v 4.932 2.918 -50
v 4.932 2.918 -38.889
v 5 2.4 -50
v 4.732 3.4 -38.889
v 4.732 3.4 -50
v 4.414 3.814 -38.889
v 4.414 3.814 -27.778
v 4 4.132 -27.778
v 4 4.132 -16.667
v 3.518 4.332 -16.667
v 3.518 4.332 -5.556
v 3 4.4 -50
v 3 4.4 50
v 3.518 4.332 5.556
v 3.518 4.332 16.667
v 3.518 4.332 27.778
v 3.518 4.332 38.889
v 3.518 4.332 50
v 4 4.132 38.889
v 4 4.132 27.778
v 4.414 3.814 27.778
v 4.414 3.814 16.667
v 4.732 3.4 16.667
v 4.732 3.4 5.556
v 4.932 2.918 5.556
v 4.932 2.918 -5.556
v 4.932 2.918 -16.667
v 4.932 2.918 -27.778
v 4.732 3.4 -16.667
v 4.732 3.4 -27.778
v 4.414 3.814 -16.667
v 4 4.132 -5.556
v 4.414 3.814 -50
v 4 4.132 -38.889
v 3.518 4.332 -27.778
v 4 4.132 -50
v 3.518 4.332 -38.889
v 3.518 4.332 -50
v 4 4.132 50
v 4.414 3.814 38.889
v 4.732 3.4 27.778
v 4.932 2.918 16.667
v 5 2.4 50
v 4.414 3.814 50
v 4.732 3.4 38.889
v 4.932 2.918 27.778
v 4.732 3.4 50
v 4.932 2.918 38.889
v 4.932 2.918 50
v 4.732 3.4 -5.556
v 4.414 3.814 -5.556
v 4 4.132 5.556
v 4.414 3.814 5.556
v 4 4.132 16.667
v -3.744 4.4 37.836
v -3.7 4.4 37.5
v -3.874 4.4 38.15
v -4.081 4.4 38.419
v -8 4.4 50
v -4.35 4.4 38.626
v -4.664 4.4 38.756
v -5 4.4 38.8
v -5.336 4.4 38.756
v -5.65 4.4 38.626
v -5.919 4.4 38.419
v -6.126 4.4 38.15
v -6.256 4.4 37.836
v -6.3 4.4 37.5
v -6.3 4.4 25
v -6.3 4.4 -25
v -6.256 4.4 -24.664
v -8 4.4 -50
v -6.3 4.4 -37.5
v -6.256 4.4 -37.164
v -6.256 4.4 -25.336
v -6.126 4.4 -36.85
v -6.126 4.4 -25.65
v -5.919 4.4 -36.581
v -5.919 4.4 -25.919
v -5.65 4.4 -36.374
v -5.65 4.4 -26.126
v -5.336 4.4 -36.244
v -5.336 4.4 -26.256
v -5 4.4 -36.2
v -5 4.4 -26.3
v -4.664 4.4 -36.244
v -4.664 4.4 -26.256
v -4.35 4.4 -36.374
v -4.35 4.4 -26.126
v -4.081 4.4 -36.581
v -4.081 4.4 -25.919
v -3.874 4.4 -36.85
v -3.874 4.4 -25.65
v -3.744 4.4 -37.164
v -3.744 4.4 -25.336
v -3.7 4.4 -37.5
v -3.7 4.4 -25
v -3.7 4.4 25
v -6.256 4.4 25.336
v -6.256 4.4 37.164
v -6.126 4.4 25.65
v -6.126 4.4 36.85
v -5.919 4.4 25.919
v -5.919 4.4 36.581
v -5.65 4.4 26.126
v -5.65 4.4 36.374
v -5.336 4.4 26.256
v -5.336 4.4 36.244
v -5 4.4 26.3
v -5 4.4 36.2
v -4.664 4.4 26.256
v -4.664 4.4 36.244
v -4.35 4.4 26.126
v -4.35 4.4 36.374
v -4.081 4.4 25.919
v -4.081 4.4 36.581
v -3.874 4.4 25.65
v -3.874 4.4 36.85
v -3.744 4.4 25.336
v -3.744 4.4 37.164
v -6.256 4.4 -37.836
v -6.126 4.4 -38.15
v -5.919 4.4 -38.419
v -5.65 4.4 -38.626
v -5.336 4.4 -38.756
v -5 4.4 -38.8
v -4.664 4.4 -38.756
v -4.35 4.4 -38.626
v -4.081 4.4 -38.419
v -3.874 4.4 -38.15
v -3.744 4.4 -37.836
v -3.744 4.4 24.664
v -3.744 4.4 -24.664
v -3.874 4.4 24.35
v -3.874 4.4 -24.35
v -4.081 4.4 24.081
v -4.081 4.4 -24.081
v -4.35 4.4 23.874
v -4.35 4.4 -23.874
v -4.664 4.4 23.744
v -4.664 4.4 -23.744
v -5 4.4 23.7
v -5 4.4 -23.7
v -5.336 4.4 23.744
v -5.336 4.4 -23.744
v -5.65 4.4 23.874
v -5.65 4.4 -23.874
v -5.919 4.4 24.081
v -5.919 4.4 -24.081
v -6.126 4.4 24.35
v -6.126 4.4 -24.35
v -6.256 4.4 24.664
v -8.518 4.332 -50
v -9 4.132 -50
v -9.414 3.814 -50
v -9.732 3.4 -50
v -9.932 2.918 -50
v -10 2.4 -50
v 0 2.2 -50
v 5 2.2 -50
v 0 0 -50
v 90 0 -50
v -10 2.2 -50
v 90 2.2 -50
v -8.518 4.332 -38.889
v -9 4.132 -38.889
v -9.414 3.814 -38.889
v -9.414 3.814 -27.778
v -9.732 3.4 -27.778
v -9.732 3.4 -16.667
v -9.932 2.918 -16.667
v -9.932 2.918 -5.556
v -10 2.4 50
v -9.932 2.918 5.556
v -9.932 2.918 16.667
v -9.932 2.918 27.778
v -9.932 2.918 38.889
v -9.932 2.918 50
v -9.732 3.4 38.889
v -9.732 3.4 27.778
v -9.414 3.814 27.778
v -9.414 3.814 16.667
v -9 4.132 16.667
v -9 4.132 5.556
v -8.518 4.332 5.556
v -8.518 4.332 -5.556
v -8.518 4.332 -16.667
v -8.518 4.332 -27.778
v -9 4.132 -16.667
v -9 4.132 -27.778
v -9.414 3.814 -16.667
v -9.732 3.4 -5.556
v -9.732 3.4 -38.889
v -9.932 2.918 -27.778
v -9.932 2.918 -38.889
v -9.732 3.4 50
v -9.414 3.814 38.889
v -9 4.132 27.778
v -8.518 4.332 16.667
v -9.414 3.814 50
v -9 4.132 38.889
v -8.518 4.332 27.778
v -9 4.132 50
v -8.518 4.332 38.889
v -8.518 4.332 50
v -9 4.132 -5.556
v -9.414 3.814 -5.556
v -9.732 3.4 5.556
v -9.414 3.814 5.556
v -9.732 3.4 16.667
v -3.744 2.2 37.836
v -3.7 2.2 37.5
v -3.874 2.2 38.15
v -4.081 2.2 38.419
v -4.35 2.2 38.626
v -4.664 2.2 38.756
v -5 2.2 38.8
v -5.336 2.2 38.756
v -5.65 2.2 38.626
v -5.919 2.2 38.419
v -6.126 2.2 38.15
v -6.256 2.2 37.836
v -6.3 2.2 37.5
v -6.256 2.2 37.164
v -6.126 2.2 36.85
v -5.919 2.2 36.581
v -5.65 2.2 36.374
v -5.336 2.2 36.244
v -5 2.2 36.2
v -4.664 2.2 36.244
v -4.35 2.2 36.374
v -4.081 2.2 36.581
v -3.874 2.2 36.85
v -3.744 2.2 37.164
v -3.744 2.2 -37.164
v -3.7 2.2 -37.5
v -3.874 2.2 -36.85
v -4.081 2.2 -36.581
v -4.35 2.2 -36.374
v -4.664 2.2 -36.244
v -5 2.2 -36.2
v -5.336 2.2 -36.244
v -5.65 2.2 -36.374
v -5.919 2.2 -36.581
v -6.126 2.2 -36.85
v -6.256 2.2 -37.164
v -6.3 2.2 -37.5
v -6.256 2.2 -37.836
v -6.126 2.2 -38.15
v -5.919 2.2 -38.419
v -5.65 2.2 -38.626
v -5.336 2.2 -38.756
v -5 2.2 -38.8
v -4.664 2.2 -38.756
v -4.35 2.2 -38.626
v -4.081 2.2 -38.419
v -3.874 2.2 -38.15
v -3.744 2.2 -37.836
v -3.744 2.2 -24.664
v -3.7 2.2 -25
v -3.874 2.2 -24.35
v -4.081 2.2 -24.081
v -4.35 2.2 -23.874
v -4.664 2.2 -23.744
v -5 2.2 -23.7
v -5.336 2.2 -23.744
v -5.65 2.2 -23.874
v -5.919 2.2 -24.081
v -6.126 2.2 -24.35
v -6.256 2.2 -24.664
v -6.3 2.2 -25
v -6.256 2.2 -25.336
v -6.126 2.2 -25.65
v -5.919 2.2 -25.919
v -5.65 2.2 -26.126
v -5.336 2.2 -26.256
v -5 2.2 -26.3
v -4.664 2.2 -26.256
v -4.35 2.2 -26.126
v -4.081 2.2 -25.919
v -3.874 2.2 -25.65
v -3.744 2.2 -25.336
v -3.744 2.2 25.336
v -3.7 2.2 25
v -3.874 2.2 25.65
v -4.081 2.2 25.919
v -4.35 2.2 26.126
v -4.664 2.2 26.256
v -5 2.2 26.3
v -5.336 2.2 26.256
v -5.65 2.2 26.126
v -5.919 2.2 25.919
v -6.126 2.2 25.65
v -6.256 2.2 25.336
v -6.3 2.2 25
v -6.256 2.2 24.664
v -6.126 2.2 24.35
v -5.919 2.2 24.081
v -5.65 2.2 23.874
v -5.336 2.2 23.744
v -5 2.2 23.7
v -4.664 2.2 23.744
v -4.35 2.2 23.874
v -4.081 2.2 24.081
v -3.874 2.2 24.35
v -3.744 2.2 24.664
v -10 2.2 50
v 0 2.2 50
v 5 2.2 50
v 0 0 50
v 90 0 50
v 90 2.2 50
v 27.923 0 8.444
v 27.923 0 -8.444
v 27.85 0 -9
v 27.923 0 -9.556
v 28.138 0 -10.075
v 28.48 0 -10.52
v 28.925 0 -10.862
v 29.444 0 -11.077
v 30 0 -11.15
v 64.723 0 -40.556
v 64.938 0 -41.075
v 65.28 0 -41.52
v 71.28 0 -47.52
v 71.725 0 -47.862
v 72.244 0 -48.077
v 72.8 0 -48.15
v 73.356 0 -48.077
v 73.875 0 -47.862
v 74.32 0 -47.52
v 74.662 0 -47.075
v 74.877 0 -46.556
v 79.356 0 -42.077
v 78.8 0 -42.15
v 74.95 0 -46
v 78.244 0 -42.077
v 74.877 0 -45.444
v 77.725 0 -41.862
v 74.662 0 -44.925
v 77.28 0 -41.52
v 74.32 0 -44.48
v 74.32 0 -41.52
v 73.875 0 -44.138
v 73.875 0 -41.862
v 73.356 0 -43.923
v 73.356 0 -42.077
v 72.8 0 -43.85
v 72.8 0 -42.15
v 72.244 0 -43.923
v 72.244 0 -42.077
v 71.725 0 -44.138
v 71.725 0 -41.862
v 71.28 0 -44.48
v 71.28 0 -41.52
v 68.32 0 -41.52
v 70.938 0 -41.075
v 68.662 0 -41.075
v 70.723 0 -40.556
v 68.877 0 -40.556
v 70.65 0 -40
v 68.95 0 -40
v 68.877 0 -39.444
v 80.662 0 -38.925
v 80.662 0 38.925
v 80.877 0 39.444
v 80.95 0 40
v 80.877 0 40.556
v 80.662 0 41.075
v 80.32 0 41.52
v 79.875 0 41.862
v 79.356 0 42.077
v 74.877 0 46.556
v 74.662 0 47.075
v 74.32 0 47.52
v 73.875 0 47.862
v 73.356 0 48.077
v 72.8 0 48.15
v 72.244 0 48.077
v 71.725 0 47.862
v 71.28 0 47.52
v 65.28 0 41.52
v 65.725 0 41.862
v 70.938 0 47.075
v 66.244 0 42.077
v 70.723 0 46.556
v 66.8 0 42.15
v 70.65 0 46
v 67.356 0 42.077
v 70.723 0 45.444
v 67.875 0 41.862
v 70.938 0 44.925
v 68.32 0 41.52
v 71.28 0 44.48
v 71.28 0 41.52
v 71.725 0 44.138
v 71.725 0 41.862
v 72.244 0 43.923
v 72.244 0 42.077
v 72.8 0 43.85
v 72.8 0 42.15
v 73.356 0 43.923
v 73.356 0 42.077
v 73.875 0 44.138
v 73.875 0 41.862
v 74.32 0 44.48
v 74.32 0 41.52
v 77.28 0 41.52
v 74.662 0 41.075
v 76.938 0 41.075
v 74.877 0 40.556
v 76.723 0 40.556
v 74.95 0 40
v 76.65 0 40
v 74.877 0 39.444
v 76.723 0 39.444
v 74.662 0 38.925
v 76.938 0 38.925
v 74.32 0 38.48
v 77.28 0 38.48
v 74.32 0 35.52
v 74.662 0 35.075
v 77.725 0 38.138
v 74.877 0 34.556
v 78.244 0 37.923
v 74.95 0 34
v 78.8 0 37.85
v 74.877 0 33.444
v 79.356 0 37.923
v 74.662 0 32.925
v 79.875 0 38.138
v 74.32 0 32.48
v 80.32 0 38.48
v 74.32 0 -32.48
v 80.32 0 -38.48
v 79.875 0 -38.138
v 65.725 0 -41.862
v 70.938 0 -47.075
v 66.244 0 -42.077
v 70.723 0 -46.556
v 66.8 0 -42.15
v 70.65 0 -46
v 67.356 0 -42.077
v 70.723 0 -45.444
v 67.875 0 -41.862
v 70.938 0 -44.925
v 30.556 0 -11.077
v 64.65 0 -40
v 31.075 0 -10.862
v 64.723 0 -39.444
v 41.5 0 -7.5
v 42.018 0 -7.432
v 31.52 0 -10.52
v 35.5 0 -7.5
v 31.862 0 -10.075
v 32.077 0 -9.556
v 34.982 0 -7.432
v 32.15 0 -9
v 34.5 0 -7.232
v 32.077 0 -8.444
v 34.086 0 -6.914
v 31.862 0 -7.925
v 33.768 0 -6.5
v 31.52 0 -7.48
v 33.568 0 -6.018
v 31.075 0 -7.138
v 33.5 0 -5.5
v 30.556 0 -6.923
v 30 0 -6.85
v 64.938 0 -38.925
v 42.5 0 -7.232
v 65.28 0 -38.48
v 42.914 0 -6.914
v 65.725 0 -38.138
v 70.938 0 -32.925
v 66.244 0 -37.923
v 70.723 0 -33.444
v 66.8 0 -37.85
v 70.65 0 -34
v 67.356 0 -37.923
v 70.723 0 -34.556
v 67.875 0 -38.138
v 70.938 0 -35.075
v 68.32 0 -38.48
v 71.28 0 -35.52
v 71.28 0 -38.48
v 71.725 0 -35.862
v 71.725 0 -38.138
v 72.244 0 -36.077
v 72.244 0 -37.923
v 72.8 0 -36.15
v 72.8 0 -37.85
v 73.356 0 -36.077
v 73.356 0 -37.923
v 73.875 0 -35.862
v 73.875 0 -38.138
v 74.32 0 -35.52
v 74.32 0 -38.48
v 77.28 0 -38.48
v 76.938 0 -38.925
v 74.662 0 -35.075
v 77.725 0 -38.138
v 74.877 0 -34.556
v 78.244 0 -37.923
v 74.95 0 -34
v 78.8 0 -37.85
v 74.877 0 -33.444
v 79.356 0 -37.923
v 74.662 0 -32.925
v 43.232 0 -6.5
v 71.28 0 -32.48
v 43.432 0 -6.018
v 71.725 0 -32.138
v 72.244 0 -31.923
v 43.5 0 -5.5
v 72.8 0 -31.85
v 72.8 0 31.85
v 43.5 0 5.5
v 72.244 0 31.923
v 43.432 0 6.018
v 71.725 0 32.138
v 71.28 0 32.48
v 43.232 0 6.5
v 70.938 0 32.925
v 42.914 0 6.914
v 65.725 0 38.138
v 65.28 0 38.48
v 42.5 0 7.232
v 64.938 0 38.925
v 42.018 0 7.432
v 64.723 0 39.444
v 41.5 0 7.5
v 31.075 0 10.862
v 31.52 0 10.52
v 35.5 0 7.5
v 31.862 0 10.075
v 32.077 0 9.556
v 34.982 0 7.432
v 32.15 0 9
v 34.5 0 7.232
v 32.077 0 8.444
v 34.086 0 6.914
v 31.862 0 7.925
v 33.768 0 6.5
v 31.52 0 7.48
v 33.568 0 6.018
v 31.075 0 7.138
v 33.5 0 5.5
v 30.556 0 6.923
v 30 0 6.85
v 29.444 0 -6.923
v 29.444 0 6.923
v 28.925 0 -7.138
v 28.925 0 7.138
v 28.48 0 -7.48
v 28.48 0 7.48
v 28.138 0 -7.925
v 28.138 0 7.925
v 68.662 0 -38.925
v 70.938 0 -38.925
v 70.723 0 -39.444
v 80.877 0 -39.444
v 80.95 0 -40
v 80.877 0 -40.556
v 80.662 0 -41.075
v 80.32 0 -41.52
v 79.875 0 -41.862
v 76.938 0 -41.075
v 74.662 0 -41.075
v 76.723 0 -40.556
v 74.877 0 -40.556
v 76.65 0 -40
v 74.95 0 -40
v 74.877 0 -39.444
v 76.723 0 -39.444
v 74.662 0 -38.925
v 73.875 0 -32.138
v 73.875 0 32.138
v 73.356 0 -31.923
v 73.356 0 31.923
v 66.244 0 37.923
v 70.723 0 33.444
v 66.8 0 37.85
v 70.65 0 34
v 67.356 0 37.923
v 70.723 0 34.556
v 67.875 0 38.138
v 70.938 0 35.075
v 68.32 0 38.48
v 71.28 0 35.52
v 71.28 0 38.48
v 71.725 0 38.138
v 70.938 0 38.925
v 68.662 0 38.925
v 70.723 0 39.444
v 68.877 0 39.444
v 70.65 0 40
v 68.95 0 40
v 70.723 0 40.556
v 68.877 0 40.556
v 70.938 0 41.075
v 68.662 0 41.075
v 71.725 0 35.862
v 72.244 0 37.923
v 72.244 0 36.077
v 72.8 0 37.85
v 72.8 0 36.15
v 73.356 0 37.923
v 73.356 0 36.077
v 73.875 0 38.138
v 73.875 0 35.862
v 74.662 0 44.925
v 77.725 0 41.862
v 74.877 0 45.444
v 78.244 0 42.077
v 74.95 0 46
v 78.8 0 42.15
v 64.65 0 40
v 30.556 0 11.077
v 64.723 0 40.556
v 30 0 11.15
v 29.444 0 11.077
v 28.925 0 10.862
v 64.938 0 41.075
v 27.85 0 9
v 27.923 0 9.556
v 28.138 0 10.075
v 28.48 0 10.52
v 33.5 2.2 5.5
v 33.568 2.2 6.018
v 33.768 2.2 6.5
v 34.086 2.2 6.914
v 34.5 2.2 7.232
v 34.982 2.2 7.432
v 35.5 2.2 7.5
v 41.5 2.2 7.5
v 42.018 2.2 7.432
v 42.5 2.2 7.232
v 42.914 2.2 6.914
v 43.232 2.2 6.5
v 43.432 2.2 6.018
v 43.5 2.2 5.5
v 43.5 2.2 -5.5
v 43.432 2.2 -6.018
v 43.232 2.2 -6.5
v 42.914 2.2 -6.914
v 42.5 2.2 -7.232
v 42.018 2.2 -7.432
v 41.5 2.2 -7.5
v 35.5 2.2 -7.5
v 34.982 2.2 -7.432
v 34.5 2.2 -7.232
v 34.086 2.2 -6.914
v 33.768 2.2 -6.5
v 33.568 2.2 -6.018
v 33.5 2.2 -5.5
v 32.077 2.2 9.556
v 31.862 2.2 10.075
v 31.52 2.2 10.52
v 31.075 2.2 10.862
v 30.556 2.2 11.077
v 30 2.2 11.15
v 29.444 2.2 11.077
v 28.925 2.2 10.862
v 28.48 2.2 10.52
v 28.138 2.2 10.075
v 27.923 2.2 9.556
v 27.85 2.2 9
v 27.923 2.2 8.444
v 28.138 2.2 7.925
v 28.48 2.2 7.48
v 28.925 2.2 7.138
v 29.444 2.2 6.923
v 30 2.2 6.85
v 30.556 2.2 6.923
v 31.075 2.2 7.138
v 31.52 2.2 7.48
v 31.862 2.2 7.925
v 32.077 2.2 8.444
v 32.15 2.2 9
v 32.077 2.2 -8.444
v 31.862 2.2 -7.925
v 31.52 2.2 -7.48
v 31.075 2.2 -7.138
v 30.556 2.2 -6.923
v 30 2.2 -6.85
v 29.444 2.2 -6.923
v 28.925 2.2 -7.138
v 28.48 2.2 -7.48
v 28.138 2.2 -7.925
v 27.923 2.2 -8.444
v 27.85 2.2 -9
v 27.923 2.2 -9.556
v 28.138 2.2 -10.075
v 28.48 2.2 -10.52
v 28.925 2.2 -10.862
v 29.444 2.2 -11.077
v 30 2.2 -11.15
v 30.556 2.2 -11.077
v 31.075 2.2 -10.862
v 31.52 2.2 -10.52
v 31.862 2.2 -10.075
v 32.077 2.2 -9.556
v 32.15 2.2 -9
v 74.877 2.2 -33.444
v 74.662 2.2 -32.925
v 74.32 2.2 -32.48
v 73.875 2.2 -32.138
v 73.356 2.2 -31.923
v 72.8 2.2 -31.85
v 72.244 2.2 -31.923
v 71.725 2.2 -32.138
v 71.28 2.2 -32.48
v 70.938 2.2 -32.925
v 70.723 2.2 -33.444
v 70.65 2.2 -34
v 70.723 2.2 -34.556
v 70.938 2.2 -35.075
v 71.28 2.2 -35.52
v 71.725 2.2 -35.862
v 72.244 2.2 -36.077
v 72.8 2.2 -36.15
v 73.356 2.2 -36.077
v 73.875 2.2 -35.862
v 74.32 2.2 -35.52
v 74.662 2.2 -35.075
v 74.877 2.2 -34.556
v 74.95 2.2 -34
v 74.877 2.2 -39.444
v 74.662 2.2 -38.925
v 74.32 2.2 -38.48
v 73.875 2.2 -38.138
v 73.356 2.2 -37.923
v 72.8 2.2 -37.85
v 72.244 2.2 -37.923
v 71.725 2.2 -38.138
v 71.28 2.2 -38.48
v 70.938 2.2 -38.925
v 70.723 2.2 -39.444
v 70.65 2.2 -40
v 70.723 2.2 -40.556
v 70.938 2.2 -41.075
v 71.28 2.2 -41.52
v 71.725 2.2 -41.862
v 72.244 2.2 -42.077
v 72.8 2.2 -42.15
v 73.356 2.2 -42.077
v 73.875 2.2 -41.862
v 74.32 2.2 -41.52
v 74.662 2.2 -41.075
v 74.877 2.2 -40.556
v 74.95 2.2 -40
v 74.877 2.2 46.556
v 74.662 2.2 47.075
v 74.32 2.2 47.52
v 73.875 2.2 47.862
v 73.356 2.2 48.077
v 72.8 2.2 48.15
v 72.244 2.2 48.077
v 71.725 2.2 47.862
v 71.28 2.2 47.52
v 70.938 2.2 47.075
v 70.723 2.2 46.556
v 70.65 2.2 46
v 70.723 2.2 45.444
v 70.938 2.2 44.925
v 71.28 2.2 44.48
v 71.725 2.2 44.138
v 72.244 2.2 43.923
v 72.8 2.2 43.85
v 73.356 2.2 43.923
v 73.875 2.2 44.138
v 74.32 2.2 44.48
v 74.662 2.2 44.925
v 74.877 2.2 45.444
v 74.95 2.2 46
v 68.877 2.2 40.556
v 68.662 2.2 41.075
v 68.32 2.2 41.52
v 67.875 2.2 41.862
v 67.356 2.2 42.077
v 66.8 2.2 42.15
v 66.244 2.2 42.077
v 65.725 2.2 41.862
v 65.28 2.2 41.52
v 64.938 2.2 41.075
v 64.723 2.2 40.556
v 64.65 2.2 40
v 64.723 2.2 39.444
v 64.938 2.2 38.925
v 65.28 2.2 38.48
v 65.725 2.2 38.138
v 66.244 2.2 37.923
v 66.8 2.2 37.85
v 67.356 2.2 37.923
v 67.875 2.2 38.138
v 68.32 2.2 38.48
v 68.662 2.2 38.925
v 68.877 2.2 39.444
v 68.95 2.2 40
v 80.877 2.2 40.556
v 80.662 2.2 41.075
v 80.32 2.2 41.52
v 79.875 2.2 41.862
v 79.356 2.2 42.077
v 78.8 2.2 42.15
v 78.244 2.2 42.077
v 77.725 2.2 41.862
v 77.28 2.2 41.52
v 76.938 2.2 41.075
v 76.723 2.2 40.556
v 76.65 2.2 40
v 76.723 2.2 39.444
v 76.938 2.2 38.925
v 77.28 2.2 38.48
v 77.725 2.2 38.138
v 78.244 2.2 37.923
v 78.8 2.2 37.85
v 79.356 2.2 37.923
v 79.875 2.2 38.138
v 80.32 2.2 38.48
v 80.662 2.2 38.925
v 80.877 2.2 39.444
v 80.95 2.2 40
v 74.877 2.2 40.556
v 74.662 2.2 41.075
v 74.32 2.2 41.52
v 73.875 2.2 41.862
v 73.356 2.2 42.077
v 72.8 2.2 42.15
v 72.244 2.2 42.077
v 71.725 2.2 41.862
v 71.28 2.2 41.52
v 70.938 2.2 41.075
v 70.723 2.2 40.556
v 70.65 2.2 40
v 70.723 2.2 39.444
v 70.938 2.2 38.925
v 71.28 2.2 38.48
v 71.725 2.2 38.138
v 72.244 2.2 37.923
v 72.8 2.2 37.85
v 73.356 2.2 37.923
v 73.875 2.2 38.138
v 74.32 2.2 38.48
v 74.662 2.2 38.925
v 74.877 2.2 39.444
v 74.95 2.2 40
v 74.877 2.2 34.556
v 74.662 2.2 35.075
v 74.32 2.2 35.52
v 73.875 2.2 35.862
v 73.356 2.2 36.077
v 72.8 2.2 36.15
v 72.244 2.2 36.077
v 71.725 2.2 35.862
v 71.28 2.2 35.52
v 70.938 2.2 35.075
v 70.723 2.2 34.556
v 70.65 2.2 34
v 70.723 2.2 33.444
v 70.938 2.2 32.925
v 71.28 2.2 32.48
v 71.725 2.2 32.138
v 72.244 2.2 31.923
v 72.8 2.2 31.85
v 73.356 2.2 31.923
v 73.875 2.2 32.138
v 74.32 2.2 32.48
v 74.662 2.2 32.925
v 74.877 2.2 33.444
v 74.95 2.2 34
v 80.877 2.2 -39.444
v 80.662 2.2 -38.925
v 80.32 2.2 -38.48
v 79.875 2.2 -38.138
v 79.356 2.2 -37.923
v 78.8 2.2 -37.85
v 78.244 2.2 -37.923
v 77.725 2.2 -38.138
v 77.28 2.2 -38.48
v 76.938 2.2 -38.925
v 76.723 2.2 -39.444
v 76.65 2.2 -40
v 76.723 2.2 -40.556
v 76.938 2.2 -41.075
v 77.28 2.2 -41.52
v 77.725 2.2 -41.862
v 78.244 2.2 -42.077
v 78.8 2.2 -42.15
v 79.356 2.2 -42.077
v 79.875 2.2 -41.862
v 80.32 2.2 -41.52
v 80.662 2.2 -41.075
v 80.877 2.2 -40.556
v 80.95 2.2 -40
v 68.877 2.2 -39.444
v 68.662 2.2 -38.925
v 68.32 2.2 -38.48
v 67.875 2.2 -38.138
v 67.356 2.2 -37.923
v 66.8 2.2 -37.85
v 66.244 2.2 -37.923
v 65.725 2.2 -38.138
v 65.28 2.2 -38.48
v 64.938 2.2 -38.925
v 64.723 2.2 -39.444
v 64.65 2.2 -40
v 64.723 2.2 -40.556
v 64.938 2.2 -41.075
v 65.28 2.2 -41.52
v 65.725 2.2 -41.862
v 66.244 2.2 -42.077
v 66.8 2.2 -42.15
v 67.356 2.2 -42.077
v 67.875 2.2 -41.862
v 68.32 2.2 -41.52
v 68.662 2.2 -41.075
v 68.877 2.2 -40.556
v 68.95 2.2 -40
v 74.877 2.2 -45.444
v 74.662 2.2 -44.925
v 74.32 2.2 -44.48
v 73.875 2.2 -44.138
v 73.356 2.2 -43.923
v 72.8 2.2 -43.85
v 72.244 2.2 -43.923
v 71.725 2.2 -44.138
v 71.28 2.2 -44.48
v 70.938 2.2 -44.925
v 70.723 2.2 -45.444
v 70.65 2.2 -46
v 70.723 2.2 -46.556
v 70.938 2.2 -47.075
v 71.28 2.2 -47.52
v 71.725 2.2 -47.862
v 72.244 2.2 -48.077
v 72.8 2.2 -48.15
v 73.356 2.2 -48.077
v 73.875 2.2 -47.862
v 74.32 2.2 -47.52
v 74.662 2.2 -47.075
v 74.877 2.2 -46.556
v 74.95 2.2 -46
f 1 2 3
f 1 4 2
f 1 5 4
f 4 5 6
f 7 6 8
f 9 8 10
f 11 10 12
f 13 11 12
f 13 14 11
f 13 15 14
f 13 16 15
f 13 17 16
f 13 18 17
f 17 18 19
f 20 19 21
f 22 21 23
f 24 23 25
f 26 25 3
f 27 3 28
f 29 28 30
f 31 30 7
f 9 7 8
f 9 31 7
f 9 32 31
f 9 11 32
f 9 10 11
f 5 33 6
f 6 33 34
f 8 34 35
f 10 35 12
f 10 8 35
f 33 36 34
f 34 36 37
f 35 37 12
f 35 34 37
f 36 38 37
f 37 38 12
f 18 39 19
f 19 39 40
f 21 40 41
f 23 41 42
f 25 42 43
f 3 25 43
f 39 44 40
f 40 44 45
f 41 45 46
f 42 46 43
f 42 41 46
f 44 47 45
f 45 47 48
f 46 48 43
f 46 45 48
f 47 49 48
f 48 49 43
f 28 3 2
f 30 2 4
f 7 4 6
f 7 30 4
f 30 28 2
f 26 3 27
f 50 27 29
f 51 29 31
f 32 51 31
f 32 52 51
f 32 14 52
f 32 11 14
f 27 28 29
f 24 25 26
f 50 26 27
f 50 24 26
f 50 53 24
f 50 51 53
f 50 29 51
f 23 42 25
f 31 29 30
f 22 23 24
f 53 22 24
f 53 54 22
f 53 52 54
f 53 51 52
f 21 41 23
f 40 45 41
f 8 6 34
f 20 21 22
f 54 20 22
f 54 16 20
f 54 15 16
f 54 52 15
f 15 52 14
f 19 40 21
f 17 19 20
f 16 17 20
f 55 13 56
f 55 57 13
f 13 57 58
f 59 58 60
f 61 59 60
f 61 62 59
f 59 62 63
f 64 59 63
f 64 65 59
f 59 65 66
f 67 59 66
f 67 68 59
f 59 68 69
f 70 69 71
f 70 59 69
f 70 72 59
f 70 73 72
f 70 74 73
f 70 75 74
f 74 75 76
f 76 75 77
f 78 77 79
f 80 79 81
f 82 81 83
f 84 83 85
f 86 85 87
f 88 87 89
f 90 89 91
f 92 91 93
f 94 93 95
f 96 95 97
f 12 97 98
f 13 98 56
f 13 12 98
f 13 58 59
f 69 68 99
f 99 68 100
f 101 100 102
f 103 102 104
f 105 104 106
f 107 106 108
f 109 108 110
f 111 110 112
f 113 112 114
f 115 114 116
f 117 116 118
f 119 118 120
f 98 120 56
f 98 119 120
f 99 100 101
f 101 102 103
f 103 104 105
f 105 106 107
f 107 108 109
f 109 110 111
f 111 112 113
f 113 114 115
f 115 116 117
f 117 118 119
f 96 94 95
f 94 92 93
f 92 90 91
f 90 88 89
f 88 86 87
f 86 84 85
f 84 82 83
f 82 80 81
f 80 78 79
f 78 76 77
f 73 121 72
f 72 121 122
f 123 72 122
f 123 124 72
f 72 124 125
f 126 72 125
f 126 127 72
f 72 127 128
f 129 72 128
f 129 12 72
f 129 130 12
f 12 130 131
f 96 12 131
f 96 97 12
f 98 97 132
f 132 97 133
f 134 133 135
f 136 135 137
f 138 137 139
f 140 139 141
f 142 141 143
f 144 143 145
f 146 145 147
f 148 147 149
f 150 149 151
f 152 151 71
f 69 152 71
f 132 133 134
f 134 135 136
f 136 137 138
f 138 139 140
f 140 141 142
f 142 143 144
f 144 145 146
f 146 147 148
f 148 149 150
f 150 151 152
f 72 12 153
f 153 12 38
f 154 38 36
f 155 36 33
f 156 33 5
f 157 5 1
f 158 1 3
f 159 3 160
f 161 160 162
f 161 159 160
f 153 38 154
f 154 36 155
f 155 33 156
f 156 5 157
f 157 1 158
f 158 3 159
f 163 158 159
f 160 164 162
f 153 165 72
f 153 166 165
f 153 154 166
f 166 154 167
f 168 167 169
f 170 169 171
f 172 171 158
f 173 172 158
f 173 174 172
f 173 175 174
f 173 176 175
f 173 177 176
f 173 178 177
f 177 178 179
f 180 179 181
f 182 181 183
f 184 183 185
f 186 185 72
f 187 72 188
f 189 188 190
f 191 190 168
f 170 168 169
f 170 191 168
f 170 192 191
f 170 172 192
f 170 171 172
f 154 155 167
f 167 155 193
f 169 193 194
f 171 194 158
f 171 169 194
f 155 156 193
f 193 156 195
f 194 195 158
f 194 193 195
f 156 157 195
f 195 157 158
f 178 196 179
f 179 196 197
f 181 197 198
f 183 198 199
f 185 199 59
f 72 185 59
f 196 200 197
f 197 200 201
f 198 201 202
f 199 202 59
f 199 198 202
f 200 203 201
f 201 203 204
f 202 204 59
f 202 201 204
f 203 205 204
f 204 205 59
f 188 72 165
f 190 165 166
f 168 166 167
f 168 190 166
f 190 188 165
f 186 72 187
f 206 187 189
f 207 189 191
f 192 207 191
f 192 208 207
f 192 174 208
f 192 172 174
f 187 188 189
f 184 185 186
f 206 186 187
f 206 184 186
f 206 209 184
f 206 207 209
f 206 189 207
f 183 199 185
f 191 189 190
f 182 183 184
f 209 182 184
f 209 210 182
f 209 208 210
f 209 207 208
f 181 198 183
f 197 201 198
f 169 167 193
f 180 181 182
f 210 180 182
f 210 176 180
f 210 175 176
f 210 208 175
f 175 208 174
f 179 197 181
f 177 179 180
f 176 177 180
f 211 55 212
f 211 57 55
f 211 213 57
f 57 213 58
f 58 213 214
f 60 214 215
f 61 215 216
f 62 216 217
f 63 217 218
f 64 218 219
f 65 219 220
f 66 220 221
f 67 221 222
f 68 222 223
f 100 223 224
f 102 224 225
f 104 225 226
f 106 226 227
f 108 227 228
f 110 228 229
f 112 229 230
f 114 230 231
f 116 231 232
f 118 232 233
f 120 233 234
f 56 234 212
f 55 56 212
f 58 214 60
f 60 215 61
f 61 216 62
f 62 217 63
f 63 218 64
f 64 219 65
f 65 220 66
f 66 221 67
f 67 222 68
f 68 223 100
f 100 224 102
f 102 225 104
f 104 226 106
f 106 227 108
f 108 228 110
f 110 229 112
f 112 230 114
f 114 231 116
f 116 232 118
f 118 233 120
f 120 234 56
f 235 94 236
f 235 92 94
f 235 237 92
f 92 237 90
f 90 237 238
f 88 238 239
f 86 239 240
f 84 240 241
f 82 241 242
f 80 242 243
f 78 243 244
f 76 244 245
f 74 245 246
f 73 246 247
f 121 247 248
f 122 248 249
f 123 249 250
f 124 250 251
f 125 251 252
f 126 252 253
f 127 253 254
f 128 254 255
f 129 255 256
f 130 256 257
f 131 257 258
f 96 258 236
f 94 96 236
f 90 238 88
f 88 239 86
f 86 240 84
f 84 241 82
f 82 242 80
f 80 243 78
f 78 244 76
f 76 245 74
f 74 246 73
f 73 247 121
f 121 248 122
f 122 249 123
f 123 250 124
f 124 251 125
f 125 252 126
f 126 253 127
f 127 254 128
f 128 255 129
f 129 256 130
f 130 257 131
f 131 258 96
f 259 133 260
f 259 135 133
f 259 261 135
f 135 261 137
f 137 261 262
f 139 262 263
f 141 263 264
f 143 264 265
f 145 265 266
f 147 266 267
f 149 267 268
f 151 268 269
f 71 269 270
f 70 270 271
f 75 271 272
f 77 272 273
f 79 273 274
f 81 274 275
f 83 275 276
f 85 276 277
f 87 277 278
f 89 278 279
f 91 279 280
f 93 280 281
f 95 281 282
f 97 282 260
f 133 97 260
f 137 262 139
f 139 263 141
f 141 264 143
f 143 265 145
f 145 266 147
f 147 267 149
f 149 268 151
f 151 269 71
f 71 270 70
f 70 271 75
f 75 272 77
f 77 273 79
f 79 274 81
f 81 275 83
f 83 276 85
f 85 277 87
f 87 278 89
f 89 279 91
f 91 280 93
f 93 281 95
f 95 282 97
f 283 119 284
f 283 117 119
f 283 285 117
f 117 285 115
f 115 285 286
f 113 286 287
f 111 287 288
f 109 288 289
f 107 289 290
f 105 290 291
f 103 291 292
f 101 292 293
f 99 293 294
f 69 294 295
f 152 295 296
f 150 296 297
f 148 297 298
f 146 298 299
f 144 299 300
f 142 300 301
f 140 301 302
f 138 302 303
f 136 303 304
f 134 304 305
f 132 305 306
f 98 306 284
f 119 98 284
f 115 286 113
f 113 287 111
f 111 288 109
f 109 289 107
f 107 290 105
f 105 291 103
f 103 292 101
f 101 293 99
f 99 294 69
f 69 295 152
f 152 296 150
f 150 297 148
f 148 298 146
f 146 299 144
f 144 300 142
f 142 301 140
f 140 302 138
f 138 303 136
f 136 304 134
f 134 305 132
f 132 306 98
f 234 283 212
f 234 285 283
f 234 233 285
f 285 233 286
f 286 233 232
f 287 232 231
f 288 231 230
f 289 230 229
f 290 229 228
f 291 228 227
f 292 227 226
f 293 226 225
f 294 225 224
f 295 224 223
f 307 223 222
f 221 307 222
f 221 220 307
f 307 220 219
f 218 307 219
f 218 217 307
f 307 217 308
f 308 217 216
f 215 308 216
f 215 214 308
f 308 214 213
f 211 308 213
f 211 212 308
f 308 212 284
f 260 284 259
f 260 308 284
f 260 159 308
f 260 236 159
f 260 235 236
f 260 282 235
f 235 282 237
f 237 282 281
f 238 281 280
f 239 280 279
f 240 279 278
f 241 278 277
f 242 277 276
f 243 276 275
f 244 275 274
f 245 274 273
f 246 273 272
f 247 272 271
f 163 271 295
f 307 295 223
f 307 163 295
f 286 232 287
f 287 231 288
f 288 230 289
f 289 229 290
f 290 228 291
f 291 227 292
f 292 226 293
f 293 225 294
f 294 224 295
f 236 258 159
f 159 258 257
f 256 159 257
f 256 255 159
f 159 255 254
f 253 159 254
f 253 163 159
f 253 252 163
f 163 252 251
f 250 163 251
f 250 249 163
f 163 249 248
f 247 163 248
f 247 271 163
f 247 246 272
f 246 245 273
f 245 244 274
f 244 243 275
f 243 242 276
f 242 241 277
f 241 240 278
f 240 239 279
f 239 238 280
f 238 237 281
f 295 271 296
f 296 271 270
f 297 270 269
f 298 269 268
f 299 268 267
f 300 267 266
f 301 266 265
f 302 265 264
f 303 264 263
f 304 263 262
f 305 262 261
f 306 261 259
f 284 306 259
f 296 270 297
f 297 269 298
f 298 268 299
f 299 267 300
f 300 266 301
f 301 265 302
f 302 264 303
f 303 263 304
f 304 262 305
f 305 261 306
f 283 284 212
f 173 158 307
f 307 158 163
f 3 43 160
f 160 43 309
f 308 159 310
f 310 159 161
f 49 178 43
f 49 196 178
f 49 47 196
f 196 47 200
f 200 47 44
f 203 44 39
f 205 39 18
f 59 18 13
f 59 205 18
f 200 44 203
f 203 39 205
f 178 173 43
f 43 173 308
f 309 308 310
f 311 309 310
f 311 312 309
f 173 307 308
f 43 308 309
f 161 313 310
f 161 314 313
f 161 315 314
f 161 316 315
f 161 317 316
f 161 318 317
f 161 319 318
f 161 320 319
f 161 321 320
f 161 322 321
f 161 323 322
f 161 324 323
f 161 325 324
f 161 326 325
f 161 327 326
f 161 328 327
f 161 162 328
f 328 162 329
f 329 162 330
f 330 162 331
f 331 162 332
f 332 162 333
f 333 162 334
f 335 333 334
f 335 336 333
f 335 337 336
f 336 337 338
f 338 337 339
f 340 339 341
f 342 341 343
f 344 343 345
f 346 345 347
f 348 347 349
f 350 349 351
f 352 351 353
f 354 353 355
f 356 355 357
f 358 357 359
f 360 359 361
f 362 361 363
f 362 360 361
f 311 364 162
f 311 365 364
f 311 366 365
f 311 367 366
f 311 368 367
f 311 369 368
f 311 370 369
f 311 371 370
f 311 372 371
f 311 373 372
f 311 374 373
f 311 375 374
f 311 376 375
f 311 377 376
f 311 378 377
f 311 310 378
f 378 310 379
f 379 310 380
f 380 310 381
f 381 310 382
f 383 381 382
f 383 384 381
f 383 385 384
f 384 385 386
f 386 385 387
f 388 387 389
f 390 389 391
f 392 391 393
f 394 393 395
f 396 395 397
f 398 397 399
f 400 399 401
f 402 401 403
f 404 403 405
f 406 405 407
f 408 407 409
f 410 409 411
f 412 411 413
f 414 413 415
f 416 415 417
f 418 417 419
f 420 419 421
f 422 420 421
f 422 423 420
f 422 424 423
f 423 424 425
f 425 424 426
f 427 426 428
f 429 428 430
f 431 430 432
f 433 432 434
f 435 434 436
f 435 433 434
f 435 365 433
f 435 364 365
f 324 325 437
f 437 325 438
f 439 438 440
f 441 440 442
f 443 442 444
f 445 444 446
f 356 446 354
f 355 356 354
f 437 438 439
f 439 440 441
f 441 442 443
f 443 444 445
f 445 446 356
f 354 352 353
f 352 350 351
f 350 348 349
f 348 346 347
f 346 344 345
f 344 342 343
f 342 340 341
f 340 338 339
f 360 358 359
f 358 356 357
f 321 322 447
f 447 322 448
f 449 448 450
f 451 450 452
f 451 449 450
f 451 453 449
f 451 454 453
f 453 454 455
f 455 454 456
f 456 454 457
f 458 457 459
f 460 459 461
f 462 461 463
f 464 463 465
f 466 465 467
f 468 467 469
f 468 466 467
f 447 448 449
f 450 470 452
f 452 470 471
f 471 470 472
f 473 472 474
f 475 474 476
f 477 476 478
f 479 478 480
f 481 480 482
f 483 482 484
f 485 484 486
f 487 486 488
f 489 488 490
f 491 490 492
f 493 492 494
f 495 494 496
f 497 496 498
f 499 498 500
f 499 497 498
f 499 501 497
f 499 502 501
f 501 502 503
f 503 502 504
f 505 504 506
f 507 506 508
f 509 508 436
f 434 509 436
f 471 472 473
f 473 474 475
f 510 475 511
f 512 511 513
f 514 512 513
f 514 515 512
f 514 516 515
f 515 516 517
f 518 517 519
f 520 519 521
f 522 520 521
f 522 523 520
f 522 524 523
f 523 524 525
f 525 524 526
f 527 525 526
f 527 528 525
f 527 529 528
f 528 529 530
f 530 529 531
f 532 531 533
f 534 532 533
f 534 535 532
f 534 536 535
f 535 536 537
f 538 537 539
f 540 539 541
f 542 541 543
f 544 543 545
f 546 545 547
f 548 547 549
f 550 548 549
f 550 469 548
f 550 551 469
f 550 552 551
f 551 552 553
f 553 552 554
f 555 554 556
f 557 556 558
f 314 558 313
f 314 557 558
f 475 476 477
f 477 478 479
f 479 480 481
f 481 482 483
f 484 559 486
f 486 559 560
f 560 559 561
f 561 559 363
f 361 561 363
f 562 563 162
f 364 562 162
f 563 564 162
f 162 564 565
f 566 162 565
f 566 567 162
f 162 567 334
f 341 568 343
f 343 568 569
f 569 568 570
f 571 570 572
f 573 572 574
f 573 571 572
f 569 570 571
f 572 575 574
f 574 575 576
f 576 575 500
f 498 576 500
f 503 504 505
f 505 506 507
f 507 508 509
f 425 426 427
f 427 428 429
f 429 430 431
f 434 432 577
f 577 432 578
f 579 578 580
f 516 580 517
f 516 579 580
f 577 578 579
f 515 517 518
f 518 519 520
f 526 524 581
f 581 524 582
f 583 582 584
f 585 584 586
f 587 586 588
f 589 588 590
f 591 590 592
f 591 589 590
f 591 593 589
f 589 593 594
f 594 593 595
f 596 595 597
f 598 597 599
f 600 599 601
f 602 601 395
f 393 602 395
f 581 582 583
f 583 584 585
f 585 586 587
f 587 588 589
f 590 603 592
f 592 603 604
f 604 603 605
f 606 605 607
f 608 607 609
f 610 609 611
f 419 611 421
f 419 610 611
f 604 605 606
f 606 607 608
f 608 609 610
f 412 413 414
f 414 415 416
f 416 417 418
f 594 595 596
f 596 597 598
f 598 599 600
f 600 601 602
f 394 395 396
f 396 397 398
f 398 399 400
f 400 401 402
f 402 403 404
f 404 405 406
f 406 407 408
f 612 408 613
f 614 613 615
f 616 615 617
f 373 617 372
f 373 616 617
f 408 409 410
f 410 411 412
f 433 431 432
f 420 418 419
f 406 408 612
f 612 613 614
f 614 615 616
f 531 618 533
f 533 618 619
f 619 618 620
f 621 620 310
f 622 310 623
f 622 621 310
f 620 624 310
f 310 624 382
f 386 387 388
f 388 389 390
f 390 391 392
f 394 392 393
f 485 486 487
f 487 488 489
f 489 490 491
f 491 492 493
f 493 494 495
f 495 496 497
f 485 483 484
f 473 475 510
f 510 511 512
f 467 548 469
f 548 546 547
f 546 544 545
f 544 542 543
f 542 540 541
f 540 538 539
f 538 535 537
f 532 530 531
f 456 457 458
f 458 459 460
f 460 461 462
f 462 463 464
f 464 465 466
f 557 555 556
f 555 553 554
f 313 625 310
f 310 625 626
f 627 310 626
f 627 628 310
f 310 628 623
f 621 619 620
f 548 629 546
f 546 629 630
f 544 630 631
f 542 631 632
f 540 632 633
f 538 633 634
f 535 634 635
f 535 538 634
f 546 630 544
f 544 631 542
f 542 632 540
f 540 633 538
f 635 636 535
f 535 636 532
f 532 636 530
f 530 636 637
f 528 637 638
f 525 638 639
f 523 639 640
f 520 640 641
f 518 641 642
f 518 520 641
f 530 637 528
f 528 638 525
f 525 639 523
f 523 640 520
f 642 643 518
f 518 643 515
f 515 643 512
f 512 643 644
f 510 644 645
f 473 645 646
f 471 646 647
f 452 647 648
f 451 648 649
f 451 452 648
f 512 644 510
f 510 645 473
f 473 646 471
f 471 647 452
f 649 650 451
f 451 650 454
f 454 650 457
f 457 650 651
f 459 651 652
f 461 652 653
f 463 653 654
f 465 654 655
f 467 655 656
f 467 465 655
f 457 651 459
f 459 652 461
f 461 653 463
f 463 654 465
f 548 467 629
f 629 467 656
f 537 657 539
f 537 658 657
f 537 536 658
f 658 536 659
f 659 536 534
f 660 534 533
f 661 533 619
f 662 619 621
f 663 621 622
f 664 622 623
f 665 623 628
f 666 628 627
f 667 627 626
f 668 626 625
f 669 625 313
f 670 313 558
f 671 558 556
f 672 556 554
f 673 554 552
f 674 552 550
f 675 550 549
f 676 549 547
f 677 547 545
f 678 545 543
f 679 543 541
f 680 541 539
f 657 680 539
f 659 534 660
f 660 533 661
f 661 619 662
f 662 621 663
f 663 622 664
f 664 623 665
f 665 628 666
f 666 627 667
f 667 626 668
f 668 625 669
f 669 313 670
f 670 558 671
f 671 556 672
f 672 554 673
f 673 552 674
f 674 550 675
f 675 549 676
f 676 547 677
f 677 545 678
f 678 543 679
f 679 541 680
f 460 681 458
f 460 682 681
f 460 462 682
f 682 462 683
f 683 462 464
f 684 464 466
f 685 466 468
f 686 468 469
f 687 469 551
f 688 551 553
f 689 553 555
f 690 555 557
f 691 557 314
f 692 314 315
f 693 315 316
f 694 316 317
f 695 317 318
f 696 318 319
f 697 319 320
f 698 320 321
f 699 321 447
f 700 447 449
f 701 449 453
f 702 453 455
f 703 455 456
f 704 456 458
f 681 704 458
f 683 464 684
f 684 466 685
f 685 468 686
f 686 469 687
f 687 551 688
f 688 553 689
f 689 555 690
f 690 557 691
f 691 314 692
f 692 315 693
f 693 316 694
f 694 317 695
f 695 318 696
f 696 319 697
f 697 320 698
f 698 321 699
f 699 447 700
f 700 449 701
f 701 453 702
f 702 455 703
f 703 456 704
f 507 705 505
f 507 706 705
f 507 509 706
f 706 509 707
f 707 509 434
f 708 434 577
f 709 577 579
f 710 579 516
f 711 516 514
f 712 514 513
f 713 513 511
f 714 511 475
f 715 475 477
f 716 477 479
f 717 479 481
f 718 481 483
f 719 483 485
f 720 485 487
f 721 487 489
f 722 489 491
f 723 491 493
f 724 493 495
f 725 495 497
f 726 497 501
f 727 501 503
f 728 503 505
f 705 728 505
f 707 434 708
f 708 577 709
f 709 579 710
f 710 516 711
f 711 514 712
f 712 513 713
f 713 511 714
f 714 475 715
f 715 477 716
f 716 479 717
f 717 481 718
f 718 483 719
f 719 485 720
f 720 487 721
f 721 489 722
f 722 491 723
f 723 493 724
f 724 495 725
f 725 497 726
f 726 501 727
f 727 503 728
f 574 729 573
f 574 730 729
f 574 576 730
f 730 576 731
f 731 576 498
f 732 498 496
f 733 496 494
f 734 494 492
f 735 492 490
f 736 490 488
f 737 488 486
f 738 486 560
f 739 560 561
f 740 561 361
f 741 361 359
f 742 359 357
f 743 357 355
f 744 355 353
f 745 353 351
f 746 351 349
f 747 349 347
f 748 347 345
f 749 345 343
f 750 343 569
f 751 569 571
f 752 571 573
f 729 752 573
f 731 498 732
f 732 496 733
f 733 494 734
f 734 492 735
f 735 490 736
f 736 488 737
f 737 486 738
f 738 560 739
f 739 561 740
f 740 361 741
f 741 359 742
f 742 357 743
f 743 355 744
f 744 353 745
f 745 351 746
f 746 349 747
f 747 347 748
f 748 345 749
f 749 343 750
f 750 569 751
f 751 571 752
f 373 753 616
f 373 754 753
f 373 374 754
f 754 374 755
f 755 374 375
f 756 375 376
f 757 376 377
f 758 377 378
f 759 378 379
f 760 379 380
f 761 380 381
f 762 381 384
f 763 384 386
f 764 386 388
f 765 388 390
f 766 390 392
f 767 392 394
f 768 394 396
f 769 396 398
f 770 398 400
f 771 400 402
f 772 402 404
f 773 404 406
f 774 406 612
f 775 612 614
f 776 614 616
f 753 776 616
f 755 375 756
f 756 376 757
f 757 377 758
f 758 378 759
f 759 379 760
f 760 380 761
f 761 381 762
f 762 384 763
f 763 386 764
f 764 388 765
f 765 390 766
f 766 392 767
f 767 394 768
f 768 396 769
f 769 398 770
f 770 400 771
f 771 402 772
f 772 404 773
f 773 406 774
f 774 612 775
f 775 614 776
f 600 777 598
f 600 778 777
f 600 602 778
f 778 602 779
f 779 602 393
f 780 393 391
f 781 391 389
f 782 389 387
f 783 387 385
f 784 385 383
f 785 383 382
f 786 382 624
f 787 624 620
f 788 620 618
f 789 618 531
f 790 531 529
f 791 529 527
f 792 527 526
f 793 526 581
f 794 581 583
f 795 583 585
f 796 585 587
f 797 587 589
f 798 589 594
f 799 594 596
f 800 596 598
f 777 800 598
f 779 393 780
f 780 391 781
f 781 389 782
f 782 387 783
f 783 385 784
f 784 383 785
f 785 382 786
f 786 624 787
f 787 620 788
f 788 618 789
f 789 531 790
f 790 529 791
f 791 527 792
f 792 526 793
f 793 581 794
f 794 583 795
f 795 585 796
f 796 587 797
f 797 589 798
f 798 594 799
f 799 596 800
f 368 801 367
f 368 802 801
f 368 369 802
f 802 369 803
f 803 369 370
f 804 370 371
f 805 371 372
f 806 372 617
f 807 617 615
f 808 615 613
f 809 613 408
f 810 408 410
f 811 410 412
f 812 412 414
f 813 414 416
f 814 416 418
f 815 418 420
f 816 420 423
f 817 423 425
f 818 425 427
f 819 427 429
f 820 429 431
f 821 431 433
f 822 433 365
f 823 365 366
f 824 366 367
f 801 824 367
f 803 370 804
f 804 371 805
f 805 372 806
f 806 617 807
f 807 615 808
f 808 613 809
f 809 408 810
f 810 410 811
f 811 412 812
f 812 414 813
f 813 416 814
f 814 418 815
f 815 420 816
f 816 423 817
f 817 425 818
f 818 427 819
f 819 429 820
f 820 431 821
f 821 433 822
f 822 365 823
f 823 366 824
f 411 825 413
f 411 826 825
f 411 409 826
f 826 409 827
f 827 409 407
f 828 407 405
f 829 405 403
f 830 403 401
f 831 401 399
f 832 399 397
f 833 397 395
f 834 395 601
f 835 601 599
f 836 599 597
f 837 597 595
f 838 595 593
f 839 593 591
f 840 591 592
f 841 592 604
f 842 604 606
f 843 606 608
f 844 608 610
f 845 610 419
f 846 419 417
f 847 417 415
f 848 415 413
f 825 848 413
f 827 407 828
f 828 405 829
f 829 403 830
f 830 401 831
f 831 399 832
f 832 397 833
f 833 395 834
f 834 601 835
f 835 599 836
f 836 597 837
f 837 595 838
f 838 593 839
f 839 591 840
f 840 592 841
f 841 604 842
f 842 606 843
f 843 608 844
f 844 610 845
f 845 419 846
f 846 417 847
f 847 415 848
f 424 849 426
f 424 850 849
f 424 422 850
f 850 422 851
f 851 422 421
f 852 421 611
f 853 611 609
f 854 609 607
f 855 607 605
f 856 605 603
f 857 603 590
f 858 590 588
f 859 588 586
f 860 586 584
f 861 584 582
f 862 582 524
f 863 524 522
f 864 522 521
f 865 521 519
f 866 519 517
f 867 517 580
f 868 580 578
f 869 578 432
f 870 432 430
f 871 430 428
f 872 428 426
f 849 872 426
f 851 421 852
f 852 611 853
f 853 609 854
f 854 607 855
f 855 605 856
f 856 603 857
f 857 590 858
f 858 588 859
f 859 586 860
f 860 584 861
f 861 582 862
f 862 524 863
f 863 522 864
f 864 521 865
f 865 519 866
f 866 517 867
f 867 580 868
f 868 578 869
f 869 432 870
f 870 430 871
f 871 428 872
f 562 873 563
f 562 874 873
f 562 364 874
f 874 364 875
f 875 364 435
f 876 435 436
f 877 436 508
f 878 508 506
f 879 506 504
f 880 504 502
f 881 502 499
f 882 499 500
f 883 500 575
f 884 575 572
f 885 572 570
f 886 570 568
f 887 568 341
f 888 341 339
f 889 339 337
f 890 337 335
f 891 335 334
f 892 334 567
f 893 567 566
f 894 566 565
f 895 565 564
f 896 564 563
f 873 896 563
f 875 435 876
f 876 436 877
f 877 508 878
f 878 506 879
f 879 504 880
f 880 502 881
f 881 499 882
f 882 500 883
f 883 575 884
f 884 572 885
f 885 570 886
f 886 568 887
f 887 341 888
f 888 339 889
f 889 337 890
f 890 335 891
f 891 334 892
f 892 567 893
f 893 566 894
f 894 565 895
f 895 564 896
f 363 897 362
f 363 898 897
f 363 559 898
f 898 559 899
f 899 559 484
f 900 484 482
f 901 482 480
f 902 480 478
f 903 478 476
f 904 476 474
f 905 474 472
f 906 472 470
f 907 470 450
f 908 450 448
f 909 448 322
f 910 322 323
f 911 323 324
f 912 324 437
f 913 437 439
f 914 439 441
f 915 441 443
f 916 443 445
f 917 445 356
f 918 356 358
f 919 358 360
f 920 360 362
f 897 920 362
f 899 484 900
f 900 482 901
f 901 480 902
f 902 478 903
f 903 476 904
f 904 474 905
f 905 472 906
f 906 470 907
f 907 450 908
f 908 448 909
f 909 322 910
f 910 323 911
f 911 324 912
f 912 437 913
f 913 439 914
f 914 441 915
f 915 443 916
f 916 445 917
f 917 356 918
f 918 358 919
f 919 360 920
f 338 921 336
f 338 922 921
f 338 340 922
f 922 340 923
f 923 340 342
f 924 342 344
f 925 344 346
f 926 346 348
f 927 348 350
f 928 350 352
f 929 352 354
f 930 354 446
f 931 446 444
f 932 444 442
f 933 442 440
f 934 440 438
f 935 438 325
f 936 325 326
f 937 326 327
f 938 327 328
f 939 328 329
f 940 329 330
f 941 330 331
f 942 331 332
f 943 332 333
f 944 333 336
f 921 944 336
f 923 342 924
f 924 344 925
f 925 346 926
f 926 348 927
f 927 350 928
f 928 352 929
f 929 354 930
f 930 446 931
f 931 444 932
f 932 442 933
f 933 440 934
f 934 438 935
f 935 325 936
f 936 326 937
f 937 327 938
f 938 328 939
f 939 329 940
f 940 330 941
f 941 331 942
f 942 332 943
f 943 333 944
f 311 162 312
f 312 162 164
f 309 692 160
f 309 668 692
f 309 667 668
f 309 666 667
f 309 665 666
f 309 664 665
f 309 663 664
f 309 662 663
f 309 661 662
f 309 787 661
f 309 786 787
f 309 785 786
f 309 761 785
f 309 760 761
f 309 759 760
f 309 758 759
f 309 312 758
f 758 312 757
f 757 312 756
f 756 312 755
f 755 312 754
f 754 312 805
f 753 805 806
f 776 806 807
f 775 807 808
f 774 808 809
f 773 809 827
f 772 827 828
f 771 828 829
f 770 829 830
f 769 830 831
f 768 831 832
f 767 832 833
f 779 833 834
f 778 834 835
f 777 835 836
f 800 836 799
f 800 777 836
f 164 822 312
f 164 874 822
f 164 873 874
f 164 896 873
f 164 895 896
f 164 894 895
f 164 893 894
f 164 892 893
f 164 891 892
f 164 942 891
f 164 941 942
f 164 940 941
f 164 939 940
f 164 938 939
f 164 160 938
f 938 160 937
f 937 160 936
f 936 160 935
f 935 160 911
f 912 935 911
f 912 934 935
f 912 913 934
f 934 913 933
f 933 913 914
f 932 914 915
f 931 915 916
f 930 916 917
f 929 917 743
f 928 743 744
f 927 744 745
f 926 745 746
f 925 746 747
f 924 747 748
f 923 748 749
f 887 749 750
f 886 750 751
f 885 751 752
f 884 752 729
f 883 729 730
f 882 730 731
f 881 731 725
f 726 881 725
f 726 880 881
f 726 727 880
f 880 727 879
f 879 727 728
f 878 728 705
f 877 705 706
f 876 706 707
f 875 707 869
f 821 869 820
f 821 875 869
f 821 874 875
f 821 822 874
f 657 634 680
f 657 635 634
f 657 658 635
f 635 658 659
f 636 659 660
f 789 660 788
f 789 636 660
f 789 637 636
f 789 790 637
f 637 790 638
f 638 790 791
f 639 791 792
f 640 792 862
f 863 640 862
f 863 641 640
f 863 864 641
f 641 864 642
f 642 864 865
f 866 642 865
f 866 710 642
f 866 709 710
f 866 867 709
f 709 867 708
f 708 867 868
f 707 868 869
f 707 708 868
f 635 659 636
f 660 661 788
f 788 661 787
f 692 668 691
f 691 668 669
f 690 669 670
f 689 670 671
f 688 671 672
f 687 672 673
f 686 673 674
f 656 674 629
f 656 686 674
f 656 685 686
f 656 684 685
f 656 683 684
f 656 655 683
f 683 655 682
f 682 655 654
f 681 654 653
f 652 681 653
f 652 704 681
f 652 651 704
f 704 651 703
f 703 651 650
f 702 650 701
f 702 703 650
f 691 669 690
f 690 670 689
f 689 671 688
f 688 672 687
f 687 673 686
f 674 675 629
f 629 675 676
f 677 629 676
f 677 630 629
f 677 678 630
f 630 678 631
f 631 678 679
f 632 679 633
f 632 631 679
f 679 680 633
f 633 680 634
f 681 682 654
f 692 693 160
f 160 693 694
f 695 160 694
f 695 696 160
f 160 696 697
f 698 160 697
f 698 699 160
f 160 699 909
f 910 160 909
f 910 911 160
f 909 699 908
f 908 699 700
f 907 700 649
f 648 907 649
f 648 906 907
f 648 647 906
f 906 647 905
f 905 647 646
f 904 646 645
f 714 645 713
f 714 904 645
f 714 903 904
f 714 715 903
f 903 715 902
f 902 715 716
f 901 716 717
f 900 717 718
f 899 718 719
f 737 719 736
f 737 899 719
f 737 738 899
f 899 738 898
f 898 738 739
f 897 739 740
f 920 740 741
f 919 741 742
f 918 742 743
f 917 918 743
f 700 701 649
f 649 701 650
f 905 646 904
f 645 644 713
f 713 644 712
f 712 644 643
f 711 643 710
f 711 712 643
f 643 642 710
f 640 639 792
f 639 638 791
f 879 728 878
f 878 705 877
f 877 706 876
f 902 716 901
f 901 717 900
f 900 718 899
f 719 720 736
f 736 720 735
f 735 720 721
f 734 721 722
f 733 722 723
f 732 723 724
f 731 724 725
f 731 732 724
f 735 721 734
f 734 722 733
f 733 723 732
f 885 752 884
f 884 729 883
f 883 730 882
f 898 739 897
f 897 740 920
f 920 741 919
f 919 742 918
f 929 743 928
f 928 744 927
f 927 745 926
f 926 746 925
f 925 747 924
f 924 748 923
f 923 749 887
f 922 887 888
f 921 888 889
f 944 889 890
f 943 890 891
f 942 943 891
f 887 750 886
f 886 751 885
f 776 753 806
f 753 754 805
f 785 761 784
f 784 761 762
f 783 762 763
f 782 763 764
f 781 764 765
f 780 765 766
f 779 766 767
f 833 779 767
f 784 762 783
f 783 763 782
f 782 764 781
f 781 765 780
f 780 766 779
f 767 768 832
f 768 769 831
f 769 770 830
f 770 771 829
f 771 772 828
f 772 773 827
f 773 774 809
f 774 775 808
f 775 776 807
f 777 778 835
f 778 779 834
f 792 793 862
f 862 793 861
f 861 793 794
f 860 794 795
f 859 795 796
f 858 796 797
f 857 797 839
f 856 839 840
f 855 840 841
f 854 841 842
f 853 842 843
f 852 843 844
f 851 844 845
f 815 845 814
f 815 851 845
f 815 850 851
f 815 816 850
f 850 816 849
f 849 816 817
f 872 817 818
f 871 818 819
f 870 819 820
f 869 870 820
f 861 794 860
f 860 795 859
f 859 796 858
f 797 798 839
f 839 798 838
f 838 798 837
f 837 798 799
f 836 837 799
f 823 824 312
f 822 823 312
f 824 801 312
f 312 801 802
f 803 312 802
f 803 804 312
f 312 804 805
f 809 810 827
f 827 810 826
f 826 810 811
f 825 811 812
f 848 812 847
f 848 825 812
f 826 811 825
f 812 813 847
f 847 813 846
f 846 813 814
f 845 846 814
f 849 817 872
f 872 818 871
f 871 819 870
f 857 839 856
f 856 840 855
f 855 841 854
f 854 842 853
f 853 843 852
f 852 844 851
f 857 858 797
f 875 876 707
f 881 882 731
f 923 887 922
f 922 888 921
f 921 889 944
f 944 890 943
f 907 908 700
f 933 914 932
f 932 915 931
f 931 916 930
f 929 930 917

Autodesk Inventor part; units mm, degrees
ref_plane "YZ Plane" through (0, 0, 0) normal (1, 0, 0) x (0, 1, 0)
ref_plane "XZ Plane" through (0, 0, 0) normal (0, 1, 0) x (-1, 0, 0)
ref_plane "XY Plane" through (0, 0, 0) normal (0, 0, 1) x (1, 0, 0)
sketch "Sketch1" plane through (0, 0, 0) normal (0, 1, 0) x (-1, 0, 0)
  line L0 (90, -50) -> (-90, -50)
  line L1 (-90, -50) -> (-90, 50)
  line L2 (-90, 50) -> (90, 50)
  line L3 (90, 50) -> (90, -50)
  line L4 (0, 0) -> (0, -16.1308) construction
  line L5 (0, 0) -> (18.4922, 0) construction
  dimension "d1" = 100
  dimension "d2" = 180
extrude "Extrusion1" add sketch "Sketch1" along normal blind 2.2
sketch "Sketch2" plane through (0, 2.2, 0) normal (0, 1, 0) x (1, 0, 0)
  line L0 (-90, -50) -> (90, -50) projected
  line L1 (90, -50) -> (90, 50) projected
  line L2 (90, -50) -> (90, -30)
  line L3 (90, -30) -> (55.6, -30)
  line L4 (55.6, -30) -> (55.6, -50)
  line L5 (55.6, -50) -> (90, -50)
  line L6 (90, -40) -> (55.6, -40) construction
  circle A0 centre (78.8, -40) radius 2.15
  circle A1 centre (72.8, -40) radius 2.15
  circle A2 centre (66.8, -40) radius 2.15
  line L7 (72.8, -40) -> (72.8, -30) construction
  circle A3 centre (72.8, -34) radius 2.15
  circle A4 centre (72.8, -46) radius 2.15
  circle A5 centre (72.8, -40) radius 2.15
  line L8 (0, 0) -> (96.2626, 0) construction
  line L9 (90, 50) -> (90, 30)
  line L10 (90, 30) -> (55.6, 30)
  line L11 (55.6, 30) -> (55.6, 50)
  line L12 (55.6, 50) -> (90, 50)
  line L13 (90, 40) -> (55.6, 40) construction
  circle A6 centre (78.8, 40) radius 2.15
  circle A7 centre (72.8, 40) radius 2.15
  circle A8 centre (66.8, 40) radius 2.15
  line L14 (72.8, 40) -> (72.8, 30) construction
  circle A9 centre (72.8, 34) radius 2.15
  circle A10 centre (72.8, 46) radius 2.15
  circle A11 centre (72.8, 40) radius 2.15
  line L15 (90, 50) -> (-90, 50) projected
  line L16 (-90, 50) -> (-90, -50) projected
  line L17 (-48, 40) -> (-72, 40)
  line L18 (-72, 40) -> (-72, 50)
  line L19 (-72, 50) -> (-48, 50)
  line L20 (-48, 50) -> (-48, 40)
  line L21 (-74.3246, 46.5) -> (-4.1674, 46.5) construction
  line L22 (-60, 53.3324) -> (-60, 32.9187) construction
  circle A12 centre (-60, 37.5) radius 2.15
  line L23 (-68.3246, 46.5) -> (1.8326, 46.5) construction
  circle A13 centre (-54, 37.5) radius 2.15
  circle A14 centre (-66, 37.5) radius 2.15
  line L24 (-8.0003, 43.25) -> (-83.9137, 43.25) construction
  circle A15 centre (-78, 43.25) radius 2.15
  circle A16 centre (-84, 43.25) radius 2.15
  circle A17 centre (-42, 43.25) radius 2.15
  circle A18 centre (-36, 43.25) radius 2.15
  line L25 (-48, -40) -> (-72, -40)
  line L26 (-72, -40) -> (-72, -50)
  line L27 (-72, -50) -> (-48, -50)
  line L28 (-48, -50) -> (-48, -40)
  line L29 (-74.3246, -46.5) -> (-4.1674, -46.5) construction
  line L30 (-60, -53.3324) -> (-60, -32.9187) construction
  circle A19 centre (-60, -37.5) radius 2.15
  circle A20 centre (-54, -37.5) radius 2.15
  circle A21 centre (-66, -37.5) radius 2.15
  line L31 (-8.0003, -43.25) -> (-83.9137, -43.25) construction
  circle A22 centre (-78, -43.25) radius 2.15
  circle A23 centre (-84, -43.25) radius 2.15
  circle A24 centre (-36, -43.25) radius 2.15
  circle A25 centre (-42, -43.25) radius 2.15
  circle A26 centre (-60, 37.5) radius 2.5 construction
  dimension "d13" = 20
  dimension "d14" = 34.4
  dimension "d15" = 4.3
  dimension "d16" = 6
  dimension "d17" = 6
  dimension "d18" = 6
  dimension "d27" = 24
  dimension "d28" = 10
  dimension "d29" = 18
  dimension "d31" = 4.3
  dimension "d34" = 6
  dimension "d41" = 6
  dimension "d46" = 6.5
  dimension "d48" = 4.3
  dimension "d49" = 6
  dimension "d52" = 6
  dimension "d60" = 5
extrude "Holes" cut sketch "Sketch2" against normal through all contours A0 | A1 | A2 | A3 | A4 | A6 | A7 | A8 | A9 | A10 | A12 | A13 | A14 | A15 | A16 | A17 | A18 | A19 | A20 | A21 | A22 | A23 | A24 | A25
sketch "Sketch3" plane through (0, 2.2, 0) normal (0, 1, 0) x (1, 0, 0)
  line L0 (33.5, 13.5) -> (-33.5, 13.5) construction
  line L1 (-33.5, 13.5) -> (-33.5, -13.5) construction
  line L2 (-33.5, -13.5) -> (33.5, -13.5) construction
  line L3 (33.5, -13.5) -> (33.5, 13.5) construction
  line L4 (0, 0) -> (39.98, 0) construction
  line L5 (0, 0) -> (0, 21.0122) construction
  circle A0 centre (30, 9) radius 2.15
  circle A1 centre (30, -9) radius 2.15
  circle A2 centre (-30, 9) radius 2.15
  circle A3 centre (-30, -9) radius 2.15
  line L6 (33.5, 7.5) -> (43.5, 7.5)
  line L7 (43.5, 7.5) -> (43.5, -7.5)
  line L8 (43.5, -7.5) -> (33.5, -7.5)
  line L9 (33.5, -7.5) -> (33.5, 7.5)
  dimension "d61" = 67
  dimension "d62" = 27
  dimension "d63" = 4.3
  dimension "d64" = 3.5
  dimension "d65" = 4.5
  dimension "d68" = 10
  dimension "d69" = 15
extrude "Extrusion4" cut sketch "Sketch3" against normal through all
fillet "Fillet1" radius 2 4 edges at (33.5, 1.1, -7.5) (43.5, 1.1, -7.5) (43.5, 1.1, 7.5) (33.5, 1.1, 7.5)
ref_plane "Work Plane1" through (0, 0, 50) normal (1, 0, 0) x (0, 0, -1)
split "Split1" plane through (0, 0, 50) removes the side toward (-1, 0, 0)
sketch "Sketch4" plane through (0, 2.2, 0) normal (0, 1, 0) x (1, 0, 0)
  line L0 (0, 50) -> (0, -50) projected
  line L1 (0, -50) -> (90, -50) projected
  line L2 (0, 50) -> (5, 50)
  line L3 (5, 50) -> (5, -50)
  line L4 (5, -50) -> (0, -50)
  line L5 (0, -50) -> (0, 50)
  point P0 (0, 0)
  dimension "d71" = 5
extrude "Extrusion5" add sketch "Sketch4" along normal blind 2.2
sketch "Sketch6" plane through (0, 0, -50) normal (-1, 0, 0) x (0, 0, 1)
  line L0 (100, 4.4) -> (100, 0) projected
  line L1 (0, 4.4) -> (100, 4.4) projected
  line L2 (0, 4.4) -> (100, 4.4)
  line L3 (100, 4.4) -> (100, 2.2)
  line L4 (100, 2.2) -> (0, 2.2)
  line L5 (0, 2.2) -> (0, 4.4)
  point P0 (50, 0)
extrude "Extrusion6" add sketch "Sketch6" along normal blind 10
sketch "Sketch7" plane through (0, 4.4, 0) normal (0, 1, 0) x (1, 0, 0)
  line L0 (5, -50) -> (-10, -50) projected
  line L1 (5, 50) -> (-10, 50) projected
  line L2 (-10, 50) -> (-5, 50) construction
  line L3 (-5, 50) -> (-5, -50) construction
  line L4 (-5, -50) -> (-10, -50) construction
  line L5 (-10, -50) -> (-10, 50) construction
  line L6 (0, 0) -> (-18.3669, 0) construction
  circle A0 centre (-5, 37.5) radius 1.3
  circle A1 centre (-5, 25) radius 1.3
  circle A2 centre (-5, -37.5) radius 1.3
  circle A3 centre (-5, -25) radius 1.3
  dimension "d76" = 5
  dimension "d77" = 2.6
  dimension "d78" = 12.5
  dimension "d81" = 12.5
extrude "Extrusion7" cut sketch "Sketch7" against normal through all
fillet "Fillet2" radius 2 2 edges at (-10, 4.4, 0) (5, 4.4, 0)
equation "\"d1\" = BodyWidth"
equation "\"d2\" = BodyLength"
equation "\"d3\" = Depth"
equation "\"d15\" = Holes"
equation "\"d27\" = MotorWidth"
equation "\"d31\" = Holes"
equation "\"d57\" = Depth"
equation "\"d72\" = Depth"
equation "\"d78\" = 0.125 * BodyWidth"
equation "\"d81\" = 0.125 * BodyWidth"
equation "\"BodyWidth\" = 100"
equation "\"BodyLength\" = 180"
equation "\"Holes\" = 4.3"
equation "\"Depth\" = 2.2"
equation "\"d20\" = 4.3"
equation "\"MotorWidth\" = 24"
properties part number "BodyBack"
